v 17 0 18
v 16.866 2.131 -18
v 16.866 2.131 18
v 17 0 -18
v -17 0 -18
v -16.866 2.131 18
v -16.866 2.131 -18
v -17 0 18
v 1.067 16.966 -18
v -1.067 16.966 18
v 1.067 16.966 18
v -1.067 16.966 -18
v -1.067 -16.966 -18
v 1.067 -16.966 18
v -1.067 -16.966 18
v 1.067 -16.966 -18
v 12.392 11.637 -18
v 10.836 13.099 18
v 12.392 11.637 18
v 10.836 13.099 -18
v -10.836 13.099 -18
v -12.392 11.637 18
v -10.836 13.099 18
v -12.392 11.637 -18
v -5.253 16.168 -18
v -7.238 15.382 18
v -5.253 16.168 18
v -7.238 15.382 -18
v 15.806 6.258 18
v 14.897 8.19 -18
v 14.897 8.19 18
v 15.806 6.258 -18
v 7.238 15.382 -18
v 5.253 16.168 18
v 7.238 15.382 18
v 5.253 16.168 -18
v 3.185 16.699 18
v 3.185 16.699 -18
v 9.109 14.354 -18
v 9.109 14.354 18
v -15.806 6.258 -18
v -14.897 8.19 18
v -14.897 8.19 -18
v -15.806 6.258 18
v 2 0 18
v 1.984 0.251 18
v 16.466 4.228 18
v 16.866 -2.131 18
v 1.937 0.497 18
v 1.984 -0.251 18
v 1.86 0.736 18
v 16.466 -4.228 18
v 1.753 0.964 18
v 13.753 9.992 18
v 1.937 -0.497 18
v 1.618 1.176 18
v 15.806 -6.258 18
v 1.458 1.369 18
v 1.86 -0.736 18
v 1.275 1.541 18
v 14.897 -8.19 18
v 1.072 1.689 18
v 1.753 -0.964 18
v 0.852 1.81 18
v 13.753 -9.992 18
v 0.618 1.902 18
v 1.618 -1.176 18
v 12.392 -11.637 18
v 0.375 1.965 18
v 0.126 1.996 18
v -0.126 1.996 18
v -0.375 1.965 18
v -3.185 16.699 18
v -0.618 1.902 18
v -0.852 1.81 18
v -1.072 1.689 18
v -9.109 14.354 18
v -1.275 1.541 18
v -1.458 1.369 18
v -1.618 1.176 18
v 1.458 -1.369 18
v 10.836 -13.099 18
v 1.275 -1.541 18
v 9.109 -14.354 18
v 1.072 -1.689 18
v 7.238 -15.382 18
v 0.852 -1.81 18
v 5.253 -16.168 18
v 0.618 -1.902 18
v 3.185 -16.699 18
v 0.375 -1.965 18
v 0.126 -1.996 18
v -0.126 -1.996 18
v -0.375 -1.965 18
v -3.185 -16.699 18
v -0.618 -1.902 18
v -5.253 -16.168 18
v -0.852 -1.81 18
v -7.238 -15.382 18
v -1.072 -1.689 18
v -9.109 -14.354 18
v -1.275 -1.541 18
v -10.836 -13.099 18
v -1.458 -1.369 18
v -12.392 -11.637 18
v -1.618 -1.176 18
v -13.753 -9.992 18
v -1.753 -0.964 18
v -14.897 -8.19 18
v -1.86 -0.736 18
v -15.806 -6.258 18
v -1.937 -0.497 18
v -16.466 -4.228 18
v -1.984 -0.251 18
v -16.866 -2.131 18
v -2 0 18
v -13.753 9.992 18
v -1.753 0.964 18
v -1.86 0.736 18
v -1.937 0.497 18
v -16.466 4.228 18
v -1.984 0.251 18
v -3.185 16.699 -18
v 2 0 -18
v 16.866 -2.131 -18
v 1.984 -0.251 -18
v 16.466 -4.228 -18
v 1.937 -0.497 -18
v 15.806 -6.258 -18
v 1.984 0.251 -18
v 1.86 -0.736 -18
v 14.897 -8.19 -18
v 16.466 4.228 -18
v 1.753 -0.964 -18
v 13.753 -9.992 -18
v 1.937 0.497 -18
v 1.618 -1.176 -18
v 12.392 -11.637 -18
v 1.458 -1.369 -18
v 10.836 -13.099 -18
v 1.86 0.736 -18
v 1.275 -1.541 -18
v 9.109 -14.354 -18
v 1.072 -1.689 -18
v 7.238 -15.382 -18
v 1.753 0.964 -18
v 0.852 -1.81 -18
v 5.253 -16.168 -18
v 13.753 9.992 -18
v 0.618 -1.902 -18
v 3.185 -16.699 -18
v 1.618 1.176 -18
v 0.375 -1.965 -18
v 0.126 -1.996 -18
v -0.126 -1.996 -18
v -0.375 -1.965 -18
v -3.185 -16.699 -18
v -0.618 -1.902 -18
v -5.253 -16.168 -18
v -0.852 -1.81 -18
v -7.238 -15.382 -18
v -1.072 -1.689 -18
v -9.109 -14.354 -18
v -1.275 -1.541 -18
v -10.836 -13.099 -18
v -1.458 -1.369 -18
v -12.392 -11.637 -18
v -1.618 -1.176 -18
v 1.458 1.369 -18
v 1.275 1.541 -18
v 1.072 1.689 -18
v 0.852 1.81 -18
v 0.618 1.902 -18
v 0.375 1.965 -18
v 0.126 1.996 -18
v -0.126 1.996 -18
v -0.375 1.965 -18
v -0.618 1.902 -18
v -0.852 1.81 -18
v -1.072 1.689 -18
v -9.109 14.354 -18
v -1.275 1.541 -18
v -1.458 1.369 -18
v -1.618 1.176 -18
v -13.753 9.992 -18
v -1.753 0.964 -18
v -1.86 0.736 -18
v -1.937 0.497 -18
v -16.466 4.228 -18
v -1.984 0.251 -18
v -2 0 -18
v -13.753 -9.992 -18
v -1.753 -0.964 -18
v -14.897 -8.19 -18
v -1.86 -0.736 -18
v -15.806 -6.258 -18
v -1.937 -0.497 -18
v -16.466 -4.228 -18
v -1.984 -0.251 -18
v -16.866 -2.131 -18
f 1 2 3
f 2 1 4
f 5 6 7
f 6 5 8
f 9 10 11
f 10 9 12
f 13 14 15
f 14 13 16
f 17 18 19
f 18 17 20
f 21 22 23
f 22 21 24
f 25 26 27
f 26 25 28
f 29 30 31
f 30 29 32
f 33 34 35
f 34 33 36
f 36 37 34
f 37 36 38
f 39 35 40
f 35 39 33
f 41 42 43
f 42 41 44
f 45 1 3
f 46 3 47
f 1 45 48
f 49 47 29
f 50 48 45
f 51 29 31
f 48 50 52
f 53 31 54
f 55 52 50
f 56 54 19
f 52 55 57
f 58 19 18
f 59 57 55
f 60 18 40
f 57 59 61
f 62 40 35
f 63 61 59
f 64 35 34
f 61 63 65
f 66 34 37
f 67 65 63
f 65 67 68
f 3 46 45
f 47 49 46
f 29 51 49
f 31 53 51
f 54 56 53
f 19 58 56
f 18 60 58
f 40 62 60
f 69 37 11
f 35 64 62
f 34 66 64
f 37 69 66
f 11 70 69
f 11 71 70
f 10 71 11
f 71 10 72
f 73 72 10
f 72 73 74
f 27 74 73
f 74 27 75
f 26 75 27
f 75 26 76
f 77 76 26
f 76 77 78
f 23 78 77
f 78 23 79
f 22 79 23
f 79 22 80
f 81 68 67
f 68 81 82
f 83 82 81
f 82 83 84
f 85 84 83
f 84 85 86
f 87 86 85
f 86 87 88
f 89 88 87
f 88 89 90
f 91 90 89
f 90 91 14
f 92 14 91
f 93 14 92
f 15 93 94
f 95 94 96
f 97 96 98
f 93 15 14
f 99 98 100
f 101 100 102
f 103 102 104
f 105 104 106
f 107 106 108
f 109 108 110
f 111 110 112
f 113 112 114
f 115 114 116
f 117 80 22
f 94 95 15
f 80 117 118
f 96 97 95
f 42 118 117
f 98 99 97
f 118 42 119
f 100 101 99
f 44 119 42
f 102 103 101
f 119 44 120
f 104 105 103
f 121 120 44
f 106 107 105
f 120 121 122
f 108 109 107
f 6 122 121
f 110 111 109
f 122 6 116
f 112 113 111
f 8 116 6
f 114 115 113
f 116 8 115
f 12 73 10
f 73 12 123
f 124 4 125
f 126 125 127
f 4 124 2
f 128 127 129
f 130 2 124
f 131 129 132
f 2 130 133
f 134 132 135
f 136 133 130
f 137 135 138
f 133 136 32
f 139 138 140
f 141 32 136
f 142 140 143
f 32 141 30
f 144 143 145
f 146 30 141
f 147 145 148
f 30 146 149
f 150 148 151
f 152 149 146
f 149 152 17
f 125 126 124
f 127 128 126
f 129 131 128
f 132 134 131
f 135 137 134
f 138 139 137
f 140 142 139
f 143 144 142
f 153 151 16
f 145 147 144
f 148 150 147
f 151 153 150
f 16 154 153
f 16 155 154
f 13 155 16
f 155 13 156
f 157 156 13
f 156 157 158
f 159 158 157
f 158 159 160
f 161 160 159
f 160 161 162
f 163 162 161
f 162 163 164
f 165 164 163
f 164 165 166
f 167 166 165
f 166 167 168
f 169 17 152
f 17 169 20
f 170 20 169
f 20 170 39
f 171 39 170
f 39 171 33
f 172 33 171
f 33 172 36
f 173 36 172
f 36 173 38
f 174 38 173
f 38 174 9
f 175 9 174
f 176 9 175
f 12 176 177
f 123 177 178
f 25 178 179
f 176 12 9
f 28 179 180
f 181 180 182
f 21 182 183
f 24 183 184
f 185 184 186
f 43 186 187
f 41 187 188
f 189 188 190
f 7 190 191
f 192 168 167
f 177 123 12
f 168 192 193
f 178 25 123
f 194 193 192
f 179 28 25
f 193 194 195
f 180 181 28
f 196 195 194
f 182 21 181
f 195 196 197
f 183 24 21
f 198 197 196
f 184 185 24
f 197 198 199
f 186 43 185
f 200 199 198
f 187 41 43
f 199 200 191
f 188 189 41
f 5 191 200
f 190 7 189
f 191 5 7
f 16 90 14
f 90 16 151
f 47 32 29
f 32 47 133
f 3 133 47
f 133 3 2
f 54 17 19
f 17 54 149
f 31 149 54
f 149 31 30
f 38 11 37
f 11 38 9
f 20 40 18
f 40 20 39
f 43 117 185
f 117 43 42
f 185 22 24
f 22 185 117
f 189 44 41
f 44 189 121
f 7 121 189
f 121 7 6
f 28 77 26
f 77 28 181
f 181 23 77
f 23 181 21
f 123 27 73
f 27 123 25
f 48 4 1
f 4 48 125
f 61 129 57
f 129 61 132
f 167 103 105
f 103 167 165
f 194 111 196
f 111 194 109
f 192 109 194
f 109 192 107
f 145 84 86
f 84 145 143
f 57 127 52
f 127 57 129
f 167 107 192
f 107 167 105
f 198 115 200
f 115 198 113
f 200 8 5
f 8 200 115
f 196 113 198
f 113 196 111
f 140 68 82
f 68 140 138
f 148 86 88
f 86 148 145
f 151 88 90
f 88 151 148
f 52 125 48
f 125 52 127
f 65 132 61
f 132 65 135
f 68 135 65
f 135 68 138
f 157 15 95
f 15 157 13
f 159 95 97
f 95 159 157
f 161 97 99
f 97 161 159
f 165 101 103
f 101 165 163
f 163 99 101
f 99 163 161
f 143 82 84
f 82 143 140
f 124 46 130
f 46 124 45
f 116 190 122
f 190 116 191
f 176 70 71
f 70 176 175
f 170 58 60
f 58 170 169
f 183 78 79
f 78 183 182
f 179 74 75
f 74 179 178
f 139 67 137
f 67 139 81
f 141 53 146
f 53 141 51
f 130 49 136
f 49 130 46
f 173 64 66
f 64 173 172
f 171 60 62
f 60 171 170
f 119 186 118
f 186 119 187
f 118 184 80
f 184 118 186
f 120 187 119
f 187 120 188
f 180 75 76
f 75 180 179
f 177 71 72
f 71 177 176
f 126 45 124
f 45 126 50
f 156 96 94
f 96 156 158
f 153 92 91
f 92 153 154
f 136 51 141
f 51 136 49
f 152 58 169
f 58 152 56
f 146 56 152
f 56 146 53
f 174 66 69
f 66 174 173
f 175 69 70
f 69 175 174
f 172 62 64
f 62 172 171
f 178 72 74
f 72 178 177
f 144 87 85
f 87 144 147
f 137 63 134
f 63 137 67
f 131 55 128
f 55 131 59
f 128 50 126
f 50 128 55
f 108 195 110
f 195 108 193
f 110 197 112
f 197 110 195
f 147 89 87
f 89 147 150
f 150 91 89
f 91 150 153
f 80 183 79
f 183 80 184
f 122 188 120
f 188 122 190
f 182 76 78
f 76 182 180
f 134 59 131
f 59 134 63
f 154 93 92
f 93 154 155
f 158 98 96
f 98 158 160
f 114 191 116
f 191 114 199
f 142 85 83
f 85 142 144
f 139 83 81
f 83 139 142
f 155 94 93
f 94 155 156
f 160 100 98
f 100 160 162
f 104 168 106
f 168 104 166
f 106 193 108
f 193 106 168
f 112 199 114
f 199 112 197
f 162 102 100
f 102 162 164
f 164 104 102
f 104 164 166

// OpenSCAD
$fn = 50;


difference() {
	union() {
		translate(v = [0, 0, -18.0000000000]) {
			cylinder(h = 36, r = 17.0000000000);
		}
	}
	union() {
		translate(v = [0, 0, -100.0000000000]) {
			cylinder(h = 200, r = 2.0000000000);
		}
	}
}
